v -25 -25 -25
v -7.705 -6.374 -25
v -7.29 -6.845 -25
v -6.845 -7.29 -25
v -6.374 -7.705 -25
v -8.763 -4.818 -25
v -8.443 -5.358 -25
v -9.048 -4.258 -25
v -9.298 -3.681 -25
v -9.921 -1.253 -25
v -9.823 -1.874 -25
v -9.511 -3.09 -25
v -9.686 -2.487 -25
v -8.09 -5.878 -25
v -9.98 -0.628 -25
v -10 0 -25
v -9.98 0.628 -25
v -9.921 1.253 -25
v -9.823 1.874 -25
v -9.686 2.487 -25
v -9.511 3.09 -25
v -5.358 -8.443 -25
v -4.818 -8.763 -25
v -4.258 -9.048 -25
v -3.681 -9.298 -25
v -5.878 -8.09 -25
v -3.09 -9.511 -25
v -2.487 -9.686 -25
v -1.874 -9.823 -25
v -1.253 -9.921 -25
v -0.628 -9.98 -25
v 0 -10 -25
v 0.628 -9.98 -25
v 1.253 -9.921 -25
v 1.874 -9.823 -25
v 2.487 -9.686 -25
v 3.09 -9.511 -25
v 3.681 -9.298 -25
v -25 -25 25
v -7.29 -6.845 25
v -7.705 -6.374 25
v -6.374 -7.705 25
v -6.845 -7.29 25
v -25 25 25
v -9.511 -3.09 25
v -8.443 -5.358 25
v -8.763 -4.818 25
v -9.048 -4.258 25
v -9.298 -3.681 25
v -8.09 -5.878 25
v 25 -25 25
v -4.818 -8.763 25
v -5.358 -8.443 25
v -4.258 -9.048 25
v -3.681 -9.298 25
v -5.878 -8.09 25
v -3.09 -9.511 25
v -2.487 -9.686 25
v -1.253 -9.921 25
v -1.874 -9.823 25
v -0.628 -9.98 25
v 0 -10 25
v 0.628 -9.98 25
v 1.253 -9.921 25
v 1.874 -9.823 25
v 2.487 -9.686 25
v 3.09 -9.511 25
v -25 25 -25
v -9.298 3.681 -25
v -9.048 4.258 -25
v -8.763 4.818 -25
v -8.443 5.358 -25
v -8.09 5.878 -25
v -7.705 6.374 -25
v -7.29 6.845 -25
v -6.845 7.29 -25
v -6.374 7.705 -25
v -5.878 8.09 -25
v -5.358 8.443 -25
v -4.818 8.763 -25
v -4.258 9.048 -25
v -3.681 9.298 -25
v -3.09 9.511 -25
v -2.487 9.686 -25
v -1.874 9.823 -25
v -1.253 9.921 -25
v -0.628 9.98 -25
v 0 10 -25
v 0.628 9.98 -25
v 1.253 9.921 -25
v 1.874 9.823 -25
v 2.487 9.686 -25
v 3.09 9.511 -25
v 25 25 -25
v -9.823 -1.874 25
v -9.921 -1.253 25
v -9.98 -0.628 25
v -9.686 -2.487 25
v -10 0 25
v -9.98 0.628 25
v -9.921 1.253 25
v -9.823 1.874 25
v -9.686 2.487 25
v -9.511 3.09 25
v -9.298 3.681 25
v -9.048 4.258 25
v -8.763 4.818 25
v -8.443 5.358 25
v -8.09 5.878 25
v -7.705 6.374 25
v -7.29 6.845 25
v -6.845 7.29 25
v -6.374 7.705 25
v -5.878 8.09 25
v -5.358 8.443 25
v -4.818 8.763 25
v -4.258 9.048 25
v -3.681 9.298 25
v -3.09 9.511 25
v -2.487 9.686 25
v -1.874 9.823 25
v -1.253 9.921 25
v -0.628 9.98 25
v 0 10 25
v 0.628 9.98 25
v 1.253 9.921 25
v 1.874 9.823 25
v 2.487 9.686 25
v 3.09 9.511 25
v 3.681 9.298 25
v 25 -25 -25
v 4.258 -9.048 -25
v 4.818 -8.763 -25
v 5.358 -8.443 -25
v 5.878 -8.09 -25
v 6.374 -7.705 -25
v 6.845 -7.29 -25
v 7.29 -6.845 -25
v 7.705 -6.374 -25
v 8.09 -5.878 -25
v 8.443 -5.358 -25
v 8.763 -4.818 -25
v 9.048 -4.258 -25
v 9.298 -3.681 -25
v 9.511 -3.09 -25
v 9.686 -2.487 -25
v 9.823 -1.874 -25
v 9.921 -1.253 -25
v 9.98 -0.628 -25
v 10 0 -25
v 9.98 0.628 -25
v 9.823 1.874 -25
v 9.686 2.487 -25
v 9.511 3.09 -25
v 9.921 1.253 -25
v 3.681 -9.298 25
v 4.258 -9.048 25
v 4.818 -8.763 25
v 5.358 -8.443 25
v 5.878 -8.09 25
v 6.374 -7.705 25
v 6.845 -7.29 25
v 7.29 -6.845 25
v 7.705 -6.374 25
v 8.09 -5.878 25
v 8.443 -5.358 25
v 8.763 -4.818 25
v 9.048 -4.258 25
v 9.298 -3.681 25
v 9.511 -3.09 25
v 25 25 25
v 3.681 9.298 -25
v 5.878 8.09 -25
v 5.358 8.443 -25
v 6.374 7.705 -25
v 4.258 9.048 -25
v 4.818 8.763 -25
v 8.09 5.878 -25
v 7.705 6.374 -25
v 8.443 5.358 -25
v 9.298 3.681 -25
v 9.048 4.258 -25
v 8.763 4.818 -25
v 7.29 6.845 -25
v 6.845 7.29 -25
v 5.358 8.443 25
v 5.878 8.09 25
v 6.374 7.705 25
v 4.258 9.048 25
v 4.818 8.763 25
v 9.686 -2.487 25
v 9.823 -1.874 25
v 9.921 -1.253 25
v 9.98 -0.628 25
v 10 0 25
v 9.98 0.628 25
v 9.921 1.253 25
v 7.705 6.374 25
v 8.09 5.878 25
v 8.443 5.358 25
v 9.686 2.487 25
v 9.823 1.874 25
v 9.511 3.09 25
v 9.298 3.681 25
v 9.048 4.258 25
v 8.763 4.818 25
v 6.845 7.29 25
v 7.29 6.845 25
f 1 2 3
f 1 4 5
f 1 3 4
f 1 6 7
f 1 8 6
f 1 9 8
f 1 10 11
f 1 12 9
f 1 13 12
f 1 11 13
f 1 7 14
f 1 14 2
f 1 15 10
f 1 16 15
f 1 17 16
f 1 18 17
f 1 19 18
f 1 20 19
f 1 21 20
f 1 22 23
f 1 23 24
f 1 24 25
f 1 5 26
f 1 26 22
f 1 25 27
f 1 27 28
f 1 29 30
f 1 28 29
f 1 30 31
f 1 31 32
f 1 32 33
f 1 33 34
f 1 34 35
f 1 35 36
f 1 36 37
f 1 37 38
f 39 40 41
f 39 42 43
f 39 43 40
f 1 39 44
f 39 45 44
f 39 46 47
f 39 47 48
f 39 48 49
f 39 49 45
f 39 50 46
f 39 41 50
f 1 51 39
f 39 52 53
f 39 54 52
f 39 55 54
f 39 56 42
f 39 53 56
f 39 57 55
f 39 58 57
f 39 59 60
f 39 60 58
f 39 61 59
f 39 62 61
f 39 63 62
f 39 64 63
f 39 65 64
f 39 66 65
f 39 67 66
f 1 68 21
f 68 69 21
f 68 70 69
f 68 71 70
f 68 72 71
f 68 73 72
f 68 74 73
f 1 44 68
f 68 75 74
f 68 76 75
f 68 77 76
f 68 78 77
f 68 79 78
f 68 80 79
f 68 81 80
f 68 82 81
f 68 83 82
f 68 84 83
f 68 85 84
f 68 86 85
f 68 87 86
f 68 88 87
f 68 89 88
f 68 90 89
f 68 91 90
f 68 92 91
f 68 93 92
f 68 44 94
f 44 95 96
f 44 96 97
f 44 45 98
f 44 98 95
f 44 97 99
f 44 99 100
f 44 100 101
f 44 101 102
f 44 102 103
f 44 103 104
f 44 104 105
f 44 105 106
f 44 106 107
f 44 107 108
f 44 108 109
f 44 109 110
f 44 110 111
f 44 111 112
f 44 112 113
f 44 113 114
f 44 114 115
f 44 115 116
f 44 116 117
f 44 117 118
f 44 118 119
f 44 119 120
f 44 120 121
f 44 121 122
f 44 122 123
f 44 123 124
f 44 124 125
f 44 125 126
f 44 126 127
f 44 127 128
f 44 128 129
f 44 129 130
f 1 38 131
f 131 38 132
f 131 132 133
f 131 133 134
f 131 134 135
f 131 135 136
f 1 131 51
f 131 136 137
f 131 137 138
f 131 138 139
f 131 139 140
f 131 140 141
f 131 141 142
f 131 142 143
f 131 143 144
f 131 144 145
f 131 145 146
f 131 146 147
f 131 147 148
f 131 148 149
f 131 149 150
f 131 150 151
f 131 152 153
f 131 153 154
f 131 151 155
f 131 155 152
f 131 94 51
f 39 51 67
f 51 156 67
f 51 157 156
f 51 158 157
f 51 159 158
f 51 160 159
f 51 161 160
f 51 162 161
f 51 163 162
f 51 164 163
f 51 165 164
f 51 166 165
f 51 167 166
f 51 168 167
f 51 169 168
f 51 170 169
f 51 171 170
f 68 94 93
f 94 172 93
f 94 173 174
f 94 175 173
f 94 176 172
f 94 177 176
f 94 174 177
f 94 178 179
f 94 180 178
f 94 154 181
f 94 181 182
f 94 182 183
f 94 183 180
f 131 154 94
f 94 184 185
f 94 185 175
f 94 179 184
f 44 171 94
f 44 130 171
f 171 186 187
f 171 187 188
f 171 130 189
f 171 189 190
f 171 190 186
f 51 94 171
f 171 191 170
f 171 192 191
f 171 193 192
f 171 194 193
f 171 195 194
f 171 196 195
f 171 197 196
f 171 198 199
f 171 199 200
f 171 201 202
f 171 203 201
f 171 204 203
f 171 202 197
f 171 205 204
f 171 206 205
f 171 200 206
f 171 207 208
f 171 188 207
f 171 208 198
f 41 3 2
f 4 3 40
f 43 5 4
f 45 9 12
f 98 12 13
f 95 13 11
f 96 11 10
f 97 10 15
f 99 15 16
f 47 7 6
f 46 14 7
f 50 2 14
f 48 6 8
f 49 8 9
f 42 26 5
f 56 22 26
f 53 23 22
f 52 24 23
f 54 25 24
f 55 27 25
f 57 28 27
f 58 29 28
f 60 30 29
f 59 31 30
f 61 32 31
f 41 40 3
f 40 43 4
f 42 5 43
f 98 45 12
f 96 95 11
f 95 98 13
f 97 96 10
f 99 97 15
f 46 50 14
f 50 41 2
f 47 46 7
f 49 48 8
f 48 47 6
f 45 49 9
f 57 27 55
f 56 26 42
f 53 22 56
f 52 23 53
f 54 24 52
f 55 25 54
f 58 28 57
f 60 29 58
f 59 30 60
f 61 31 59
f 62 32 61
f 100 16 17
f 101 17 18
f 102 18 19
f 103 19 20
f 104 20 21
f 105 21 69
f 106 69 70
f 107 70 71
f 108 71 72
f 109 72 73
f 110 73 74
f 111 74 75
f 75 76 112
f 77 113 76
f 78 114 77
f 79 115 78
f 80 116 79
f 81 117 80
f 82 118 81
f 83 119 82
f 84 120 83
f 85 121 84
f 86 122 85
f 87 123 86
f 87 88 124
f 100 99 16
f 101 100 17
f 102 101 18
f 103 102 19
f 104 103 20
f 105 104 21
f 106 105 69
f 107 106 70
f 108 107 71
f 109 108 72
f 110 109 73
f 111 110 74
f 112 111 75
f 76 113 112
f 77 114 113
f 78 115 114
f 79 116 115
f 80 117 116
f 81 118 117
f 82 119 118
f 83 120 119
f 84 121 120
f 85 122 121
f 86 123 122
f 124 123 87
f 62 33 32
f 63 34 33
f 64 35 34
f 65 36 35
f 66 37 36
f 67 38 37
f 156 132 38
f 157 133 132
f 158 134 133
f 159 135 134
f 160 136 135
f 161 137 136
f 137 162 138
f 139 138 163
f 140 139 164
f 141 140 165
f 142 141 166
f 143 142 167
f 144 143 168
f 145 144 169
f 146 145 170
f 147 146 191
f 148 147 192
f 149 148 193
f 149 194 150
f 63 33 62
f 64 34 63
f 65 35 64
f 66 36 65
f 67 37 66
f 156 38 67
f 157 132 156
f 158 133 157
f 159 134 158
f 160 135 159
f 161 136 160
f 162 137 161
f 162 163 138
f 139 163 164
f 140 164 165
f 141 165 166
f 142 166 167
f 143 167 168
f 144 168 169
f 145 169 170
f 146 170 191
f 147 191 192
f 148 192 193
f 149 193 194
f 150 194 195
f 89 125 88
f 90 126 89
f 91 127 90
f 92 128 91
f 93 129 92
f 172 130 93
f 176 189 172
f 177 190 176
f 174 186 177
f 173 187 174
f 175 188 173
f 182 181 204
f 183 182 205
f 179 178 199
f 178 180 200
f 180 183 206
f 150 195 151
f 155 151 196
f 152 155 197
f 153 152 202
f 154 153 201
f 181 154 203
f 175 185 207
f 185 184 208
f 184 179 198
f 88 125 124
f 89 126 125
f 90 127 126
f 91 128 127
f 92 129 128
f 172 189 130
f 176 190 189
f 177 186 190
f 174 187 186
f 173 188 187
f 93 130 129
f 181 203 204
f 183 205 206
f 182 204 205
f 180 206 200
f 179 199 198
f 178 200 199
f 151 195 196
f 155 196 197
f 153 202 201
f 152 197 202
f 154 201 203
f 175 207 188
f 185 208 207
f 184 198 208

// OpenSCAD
difference() {
    // 50mm角の立方体を原点中心に配置
    cube([50, 50, 50], center = true);
    // 直径20mmの穴をz軸方向に貫通（原点中心）
    translate([0, 0, 0])
        cylinder(h = 60, d = 20, center = true, $fn = 100);
}
